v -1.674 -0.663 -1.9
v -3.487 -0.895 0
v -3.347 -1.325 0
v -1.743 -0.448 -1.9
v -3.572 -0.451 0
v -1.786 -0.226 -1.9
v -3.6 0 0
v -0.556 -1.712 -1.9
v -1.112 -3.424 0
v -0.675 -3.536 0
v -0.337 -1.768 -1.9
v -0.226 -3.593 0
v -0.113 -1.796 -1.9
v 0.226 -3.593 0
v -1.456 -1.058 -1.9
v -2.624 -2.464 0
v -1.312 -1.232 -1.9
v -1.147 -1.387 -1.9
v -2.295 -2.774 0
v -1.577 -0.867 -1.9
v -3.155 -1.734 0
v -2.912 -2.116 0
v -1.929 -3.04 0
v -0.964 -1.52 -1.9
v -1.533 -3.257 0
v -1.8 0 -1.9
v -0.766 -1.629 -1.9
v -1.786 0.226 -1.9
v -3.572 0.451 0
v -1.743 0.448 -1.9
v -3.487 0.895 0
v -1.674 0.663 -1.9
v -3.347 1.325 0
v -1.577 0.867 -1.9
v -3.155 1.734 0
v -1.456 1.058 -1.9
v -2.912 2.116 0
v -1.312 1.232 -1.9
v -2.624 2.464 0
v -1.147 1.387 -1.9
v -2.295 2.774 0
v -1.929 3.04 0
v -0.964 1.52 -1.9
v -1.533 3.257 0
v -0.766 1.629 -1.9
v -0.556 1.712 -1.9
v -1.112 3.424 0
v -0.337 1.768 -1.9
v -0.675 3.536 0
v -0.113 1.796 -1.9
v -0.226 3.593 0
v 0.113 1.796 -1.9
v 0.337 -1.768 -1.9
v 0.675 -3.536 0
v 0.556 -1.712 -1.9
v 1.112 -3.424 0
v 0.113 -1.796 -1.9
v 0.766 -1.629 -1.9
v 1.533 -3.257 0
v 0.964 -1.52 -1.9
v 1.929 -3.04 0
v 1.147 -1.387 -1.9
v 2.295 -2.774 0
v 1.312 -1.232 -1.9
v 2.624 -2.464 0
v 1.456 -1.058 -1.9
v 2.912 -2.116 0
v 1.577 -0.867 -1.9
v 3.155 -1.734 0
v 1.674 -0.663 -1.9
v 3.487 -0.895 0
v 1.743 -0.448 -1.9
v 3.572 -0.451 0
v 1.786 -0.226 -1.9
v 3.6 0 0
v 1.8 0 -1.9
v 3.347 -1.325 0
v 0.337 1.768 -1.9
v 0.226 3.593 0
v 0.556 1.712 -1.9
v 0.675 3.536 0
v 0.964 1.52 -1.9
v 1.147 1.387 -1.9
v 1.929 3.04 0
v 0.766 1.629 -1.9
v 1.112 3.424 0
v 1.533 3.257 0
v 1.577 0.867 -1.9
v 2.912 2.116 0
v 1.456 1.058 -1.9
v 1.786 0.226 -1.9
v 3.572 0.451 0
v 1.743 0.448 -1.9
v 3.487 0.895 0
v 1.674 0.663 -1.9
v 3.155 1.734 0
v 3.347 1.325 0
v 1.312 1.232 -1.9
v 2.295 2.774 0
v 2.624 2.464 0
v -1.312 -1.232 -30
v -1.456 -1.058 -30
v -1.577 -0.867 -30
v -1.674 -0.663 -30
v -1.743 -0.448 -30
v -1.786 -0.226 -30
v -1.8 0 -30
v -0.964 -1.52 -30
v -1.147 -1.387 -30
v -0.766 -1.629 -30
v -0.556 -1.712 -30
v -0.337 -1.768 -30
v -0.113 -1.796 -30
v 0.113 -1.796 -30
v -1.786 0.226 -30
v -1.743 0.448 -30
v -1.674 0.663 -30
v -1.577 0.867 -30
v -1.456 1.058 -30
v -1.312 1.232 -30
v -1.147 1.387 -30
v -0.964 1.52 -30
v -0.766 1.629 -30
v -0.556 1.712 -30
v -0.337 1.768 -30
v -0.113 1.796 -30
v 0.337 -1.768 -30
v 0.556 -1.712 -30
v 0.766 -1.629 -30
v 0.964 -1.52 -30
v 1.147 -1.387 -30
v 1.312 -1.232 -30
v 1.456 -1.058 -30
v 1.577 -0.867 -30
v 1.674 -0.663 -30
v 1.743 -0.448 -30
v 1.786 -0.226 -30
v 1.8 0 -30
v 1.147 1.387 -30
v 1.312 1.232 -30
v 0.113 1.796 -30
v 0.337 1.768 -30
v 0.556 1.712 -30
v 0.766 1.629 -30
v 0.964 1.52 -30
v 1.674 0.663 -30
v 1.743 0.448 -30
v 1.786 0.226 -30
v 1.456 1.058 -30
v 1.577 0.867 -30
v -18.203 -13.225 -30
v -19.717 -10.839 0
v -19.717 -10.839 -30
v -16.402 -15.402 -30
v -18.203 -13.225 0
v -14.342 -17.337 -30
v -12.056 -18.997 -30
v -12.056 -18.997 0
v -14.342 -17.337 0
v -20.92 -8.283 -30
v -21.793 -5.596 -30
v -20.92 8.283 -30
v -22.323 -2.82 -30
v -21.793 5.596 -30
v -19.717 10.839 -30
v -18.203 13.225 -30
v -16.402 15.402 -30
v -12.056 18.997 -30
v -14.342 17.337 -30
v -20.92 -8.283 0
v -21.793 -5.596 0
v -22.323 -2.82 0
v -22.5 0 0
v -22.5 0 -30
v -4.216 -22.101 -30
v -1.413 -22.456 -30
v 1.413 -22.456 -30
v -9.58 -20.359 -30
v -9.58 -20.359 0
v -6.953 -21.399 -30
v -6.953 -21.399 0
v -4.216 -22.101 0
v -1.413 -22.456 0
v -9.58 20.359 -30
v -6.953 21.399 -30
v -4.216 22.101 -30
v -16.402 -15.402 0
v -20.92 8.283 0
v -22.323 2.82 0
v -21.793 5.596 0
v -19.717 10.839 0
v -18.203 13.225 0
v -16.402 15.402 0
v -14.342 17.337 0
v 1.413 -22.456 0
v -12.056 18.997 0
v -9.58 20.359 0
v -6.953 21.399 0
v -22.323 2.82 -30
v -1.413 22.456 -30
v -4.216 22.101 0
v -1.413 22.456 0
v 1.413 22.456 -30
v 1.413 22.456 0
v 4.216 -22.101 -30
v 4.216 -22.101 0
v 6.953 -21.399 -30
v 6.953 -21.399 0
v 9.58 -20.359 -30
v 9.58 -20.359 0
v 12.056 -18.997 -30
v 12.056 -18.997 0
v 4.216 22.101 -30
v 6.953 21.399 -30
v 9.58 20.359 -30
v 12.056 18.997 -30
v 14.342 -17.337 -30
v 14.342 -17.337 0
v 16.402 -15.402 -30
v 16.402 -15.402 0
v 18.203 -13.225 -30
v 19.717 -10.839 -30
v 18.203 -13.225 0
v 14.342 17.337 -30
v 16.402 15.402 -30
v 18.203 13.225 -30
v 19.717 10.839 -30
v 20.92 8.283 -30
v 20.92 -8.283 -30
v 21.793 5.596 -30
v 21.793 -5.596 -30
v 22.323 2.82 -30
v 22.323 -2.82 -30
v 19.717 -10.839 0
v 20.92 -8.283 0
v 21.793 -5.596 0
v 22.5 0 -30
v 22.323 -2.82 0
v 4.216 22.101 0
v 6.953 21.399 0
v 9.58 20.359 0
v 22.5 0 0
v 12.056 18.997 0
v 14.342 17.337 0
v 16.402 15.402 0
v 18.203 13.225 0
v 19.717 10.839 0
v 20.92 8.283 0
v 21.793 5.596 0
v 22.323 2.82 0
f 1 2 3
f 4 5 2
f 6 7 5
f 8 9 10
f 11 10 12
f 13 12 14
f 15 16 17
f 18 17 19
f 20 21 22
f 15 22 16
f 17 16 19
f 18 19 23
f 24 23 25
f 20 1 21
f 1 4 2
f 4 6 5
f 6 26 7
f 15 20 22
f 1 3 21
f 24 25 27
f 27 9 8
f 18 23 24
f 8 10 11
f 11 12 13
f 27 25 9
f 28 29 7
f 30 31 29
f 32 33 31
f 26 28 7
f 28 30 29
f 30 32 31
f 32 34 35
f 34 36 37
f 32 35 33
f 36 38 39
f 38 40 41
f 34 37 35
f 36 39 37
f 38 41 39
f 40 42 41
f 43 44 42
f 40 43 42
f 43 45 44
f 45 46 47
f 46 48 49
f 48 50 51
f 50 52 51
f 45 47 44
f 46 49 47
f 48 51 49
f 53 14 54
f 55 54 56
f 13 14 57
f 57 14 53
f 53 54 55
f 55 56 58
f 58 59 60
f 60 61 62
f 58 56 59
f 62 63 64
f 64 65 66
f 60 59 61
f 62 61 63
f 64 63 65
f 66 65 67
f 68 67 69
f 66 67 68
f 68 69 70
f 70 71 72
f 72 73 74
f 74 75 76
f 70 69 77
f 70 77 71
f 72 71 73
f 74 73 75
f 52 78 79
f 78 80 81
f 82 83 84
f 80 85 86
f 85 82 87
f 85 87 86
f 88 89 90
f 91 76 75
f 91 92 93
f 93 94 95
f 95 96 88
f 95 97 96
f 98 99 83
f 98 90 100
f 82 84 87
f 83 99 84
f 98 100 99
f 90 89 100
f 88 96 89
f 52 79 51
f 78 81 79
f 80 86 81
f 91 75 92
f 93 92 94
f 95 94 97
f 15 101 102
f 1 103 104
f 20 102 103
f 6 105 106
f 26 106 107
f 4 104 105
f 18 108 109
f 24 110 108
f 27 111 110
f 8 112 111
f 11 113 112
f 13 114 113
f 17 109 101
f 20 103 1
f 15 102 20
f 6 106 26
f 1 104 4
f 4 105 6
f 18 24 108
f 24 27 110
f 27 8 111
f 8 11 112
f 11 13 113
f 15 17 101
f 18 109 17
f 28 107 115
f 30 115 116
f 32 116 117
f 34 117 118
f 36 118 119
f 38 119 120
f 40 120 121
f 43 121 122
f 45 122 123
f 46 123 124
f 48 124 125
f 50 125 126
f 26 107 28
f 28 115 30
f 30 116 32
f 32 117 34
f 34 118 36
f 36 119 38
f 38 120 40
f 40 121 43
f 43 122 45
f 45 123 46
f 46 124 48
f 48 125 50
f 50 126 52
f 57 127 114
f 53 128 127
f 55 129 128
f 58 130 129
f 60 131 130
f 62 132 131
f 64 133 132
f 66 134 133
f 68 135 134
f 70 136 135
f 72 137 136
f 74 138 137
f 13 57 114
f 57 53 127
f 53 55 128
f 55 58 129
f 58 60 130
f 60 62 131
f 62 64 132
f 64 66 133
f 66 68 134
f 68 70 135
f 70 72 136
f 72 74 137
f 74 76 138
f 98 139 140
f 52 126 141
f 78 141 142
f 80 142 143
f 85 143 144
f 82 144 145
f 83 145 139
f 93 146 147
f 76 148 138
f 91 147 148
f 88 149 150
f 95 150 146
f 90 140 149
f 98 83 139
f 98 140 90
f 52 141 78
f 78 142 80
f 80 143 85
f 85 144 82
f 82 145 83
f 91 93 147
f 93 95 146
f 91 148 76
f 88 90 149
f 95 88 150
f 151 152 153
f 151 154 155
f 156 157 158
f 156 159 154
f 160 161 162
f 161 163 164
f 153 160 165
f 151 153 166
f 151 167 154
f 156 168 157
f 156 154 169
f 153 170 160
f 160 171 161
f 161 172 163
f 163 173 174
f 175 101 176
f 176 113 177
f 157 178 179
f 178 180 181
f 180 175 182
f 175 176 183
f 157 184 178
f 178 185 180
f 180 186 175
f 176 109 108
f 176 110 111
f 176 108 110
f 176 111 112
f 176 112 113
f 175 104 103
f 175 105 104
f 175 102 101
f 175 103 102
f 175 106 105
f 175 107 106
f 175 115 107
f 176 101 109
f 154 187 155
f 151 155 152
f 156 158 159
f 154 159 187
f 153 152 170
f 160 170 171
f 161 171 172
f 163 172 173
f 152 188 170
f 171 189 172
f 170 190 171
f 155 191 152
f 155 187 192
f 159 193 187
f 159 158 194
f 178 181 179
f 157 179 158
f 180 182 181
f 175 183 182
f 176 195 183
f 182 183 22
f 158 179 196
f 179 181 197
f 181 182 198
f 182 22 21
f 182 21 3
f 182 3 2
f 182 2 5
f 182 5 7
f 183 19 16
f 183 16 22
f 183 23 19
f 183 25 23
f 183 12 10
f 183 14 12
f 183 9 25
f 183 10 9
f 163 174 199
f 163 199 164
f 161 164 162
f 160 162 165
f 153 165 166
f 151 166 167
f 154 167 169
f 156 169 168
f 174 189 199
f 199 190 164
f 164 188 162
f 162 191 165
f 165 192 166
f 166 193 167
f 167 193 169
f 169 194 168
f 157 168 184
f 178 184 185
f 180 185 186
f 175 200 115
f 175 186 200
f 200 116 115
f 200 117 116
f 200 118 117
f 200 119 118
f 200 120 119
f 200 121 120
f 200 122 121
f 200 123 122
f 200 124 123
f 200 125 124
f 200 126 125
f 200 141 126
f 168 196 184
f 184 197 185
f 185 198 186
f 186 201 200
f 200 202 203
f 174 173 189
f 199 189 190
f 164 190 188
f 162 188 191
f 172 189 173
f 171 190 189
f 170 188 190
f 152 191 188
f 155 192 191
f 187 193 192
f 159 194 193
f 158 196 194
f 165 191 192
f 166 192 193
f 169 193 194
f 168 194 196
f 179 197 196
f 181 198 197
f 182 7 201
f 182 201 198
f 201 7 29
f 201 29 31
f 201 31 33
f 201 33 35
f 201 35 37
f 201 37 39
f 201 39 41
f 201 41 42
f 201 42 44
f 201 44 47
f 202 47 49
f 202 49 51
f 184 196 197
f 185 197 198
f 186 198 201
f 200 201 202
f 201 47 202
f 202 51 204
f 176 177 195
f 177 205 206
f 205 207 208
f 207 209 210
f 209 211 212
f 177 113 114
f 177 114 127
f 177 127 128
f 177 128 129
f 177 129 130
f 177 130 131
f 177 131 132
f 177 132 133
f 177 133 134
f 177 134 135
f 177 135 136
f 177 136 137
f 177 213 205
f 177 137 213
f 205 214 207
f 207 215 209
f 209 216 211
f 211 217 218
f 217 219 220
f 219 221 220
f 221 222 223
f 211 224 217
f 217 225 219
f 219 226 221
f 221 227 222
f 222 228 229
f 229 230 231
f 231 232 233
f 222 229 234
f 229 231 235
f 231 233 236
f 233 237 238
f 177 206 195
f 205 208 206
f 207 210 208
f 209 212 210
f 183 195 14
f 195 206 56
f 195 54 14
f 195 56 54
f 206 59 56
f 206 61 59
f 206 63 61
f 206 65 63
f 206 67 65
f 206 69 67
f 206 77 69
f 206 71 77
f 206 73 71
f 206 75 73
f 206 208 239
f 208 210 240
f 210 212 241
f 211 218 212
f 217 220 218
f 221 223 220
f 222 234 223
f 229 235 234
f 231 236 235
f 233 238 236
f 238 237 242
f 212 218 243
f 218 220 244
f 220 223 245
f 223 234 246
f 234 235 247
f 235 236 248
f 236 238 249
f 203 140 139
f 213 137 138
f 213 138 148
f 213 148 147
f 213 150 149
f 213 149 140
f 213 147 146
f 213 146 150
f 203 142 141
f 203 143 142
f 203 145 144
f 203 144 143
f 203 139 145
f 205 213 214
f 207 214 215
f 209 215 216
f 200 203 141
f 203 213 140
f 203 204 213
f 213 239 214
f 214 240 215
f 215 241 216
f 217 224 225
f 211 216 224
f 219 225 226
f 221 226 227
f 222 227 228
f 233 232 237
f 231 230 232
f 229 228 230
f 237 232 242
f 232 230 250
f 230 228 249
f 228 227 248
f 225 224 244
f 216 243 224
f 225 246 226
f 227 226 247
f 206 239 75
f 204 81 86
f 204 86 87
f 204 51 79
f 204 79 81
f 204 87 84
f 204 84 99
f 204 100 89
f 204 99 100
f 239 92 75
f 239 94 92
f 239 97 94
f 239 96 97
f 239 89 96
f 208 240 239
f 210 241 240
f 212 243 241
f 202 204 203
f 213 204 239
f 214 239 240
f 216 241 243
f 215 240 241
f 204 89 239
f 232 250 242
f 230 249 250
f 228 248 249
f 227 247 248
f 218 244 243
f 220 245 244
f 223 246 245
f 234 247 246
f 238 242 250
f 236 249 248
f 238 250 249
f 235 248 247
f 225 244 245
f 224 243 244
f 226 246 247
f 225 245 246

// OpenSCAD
$fn = 50;

difference() {
	union() {
		translate(v = [0, 0, -30.0]) {
			cylinder(h = 30, r = 22.5);
		}
	}
	union() {
		translate(v = [0, 0, 0]) {
			rotate(a = [0, 0, 0]) {
				difference() {
					union() {
						translate(v = [0, 0, -33.0]) {
							cylinder(h = 33, r = 1.5);
						}
						translate(v = [0, 0, -1.9]) {
							cylinder(h = 1.9, r1 = 1.8, r2 = 3.6);
						}
						translate(v = [0, 0, -33.0]) {
							cylinder(h = 33, r = 1.8);
						}
						translate(v = [0, 0, -33.0]) {
							cylinder(h = 33, r = 1.5);
						}
					}
					union();
				}
			}
		}
	}
}
